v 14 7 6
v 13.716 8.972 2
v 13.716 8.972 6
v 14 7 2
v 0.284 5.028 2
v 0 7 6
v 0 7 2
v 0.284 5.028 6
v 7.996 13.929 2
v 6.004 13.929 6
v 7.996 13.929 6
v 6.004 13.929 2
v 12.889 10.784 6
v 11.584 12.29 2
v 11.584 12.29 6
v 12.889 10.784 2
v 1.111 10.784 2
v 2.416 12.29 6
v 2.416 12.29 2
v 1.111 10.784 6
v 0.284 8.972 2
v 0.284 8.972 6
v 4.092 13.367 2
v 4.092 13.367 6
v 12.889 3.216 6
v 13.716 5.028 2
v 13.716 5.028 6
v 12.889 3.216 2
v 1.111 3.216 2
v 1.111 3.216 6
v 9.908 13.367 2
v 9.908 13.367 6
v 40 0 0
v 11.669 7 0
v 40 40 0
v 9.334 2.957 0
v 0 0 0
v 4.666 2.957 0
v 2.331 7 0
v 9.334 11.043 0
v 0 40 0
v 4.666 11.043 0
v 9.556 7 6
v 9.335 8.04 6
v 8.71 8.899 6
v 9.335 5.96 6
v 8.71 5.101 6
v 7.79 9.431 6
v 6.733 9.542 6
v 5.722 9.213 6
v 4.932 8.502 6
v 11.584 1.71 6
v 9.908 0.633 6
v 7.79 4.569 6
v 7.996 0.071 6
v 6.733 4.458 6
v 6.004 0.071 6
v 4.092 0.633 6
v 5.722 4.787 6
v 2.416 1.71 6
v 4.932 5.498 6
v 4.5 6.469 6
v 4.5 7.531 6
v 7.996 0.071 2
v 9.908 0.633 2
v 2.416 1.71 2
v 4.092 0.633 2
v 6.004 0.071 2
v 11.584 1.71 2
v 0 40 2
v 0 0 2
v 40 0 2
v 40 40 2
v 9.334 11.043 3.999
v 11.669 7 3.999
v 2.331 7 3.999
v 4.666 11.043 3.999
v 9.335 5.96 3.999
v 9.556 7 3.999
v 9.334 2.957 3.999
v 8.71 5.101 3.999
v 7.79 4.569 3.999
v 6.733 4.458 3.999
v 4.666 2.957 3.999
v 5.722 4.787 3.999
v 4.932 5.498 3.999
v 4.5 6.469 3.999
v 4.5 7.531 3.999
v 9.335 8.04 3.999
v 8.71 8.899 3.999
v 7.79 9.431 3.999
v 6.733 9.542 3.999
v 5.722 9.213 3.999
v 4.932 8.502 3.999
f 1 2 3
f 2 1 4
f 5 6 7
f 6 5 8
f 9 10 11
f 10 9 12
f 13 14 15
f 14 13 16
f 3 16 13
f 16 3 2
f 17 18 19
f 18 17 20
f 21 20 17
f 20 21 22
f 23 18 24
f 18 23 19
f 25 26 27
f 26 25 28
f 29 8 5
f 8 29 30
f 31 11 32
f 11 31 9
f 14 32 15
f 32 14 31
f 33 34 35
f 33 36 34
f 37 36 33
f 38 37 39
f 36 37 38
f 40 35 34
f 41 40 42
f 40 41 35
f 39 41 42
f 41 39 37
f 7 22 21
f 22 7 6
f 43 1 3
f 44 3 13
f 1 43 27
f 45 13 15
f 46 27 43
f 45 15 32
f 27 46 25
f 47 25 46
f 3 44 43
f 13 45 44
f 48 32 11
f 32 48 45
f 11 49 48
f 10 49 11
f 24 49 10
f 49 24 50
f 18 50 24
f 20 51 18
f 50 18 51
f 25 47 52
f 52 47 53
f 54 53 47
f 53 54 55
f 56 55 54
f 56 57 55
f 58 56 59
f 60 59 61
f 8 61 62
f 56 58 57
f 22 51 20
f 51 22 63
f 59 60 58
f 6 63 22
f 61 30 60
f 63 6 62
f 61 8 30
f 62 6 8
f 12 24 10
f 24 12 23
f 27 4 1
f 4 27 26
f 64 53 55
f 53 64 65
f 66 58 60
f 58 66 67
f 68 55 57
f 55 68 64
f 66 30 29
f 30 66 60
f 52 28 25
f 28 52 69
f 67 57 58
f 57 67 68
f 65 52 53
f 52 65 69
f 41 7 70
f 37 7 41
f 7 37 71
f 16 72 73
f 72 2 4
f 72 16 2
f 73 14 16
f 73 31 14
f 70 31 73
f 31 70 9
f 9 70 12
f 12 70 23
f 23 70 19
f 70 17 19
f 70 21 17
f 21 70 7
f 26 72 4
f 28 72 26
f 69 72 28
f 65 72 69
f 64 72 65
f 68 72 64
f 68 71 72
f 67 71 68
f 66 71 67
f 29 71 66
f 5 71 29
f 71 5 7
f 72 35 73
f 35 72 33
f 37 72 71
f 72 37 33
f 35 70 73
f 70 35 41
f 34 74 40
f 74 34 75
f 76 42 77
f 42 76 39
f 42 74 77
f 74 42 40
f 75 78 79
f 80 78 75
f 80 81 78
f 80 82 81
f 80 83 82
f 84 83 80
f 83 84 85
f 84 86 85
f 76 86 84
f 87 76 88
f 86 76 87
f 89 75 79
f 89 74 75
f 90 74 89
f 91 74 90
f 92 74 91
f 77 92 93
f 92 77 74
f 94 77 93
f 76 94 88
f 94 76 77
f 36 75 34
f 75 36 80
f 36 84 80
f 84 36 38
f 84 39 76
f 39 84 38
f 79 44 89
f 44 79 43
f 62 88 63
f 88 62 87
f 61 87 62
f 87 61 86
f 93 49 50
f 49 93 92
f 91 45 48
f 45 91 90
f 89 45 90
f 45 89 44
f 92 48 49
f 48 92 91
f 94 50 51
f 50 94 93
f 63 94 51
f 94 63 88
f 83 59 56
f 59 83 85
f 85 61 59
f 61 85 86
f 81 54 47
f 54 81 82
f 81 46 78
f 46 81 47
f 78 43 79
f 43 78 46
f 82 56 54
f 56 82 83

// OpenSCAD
// file: ../lib/hole.scad
module cylinder_outer(h,d=undef,d1=undef,d2=undef,fn=15) {
	fudge = cos(180/fn);
	cylinder(h=h,d=d/fudge,d1=d1/fudge,d2=d2/fudge,$fn=fn);
}

module hole(d, height, countersink=0, extra_above=false) {
	height = height - countersink;
	translate([0, 0, -(height+countersink)]) {
		translate([0, 0, height+0.001]) cylinder_outer(d1=d, d2=d*1.5, h=countersink);
		if (extra_above) {
			translate([0, 0, height+0.001]) cylinder_outer(d1=d, d2=d*2, h=countersink*3/2);
		}
		if (height > 0)
			translate([0, 0, -2]) cylinder_outer(d=d, h=height+2.1);
	}
}

module nut_trap(w, h, sides){
	cylinder(r = w / 2 / cos(180 / 6) + 0.05, h=h, $fn=6);
}

module rim(id, od, h) {
	difference() {
		cylinder_outer(h=h, d=od);
		translate([0, 0, -1]) cylinder(h=h+2, d=id);
	}
}

rim(8.5, 13, 2);
// main file
use <../lib/hole.scad>;

h=6;

difference() {
	union() {
		translate([7, 7, 0]) cylinder(d=14, h=h);
		cube([40, 40, 2]);
	}
	translate([7, 7, -0.001]) {
		nut_trap(8, 4, 6.001);
		cylinder_outer(d=5, h=h + 0.002);
	}
}
